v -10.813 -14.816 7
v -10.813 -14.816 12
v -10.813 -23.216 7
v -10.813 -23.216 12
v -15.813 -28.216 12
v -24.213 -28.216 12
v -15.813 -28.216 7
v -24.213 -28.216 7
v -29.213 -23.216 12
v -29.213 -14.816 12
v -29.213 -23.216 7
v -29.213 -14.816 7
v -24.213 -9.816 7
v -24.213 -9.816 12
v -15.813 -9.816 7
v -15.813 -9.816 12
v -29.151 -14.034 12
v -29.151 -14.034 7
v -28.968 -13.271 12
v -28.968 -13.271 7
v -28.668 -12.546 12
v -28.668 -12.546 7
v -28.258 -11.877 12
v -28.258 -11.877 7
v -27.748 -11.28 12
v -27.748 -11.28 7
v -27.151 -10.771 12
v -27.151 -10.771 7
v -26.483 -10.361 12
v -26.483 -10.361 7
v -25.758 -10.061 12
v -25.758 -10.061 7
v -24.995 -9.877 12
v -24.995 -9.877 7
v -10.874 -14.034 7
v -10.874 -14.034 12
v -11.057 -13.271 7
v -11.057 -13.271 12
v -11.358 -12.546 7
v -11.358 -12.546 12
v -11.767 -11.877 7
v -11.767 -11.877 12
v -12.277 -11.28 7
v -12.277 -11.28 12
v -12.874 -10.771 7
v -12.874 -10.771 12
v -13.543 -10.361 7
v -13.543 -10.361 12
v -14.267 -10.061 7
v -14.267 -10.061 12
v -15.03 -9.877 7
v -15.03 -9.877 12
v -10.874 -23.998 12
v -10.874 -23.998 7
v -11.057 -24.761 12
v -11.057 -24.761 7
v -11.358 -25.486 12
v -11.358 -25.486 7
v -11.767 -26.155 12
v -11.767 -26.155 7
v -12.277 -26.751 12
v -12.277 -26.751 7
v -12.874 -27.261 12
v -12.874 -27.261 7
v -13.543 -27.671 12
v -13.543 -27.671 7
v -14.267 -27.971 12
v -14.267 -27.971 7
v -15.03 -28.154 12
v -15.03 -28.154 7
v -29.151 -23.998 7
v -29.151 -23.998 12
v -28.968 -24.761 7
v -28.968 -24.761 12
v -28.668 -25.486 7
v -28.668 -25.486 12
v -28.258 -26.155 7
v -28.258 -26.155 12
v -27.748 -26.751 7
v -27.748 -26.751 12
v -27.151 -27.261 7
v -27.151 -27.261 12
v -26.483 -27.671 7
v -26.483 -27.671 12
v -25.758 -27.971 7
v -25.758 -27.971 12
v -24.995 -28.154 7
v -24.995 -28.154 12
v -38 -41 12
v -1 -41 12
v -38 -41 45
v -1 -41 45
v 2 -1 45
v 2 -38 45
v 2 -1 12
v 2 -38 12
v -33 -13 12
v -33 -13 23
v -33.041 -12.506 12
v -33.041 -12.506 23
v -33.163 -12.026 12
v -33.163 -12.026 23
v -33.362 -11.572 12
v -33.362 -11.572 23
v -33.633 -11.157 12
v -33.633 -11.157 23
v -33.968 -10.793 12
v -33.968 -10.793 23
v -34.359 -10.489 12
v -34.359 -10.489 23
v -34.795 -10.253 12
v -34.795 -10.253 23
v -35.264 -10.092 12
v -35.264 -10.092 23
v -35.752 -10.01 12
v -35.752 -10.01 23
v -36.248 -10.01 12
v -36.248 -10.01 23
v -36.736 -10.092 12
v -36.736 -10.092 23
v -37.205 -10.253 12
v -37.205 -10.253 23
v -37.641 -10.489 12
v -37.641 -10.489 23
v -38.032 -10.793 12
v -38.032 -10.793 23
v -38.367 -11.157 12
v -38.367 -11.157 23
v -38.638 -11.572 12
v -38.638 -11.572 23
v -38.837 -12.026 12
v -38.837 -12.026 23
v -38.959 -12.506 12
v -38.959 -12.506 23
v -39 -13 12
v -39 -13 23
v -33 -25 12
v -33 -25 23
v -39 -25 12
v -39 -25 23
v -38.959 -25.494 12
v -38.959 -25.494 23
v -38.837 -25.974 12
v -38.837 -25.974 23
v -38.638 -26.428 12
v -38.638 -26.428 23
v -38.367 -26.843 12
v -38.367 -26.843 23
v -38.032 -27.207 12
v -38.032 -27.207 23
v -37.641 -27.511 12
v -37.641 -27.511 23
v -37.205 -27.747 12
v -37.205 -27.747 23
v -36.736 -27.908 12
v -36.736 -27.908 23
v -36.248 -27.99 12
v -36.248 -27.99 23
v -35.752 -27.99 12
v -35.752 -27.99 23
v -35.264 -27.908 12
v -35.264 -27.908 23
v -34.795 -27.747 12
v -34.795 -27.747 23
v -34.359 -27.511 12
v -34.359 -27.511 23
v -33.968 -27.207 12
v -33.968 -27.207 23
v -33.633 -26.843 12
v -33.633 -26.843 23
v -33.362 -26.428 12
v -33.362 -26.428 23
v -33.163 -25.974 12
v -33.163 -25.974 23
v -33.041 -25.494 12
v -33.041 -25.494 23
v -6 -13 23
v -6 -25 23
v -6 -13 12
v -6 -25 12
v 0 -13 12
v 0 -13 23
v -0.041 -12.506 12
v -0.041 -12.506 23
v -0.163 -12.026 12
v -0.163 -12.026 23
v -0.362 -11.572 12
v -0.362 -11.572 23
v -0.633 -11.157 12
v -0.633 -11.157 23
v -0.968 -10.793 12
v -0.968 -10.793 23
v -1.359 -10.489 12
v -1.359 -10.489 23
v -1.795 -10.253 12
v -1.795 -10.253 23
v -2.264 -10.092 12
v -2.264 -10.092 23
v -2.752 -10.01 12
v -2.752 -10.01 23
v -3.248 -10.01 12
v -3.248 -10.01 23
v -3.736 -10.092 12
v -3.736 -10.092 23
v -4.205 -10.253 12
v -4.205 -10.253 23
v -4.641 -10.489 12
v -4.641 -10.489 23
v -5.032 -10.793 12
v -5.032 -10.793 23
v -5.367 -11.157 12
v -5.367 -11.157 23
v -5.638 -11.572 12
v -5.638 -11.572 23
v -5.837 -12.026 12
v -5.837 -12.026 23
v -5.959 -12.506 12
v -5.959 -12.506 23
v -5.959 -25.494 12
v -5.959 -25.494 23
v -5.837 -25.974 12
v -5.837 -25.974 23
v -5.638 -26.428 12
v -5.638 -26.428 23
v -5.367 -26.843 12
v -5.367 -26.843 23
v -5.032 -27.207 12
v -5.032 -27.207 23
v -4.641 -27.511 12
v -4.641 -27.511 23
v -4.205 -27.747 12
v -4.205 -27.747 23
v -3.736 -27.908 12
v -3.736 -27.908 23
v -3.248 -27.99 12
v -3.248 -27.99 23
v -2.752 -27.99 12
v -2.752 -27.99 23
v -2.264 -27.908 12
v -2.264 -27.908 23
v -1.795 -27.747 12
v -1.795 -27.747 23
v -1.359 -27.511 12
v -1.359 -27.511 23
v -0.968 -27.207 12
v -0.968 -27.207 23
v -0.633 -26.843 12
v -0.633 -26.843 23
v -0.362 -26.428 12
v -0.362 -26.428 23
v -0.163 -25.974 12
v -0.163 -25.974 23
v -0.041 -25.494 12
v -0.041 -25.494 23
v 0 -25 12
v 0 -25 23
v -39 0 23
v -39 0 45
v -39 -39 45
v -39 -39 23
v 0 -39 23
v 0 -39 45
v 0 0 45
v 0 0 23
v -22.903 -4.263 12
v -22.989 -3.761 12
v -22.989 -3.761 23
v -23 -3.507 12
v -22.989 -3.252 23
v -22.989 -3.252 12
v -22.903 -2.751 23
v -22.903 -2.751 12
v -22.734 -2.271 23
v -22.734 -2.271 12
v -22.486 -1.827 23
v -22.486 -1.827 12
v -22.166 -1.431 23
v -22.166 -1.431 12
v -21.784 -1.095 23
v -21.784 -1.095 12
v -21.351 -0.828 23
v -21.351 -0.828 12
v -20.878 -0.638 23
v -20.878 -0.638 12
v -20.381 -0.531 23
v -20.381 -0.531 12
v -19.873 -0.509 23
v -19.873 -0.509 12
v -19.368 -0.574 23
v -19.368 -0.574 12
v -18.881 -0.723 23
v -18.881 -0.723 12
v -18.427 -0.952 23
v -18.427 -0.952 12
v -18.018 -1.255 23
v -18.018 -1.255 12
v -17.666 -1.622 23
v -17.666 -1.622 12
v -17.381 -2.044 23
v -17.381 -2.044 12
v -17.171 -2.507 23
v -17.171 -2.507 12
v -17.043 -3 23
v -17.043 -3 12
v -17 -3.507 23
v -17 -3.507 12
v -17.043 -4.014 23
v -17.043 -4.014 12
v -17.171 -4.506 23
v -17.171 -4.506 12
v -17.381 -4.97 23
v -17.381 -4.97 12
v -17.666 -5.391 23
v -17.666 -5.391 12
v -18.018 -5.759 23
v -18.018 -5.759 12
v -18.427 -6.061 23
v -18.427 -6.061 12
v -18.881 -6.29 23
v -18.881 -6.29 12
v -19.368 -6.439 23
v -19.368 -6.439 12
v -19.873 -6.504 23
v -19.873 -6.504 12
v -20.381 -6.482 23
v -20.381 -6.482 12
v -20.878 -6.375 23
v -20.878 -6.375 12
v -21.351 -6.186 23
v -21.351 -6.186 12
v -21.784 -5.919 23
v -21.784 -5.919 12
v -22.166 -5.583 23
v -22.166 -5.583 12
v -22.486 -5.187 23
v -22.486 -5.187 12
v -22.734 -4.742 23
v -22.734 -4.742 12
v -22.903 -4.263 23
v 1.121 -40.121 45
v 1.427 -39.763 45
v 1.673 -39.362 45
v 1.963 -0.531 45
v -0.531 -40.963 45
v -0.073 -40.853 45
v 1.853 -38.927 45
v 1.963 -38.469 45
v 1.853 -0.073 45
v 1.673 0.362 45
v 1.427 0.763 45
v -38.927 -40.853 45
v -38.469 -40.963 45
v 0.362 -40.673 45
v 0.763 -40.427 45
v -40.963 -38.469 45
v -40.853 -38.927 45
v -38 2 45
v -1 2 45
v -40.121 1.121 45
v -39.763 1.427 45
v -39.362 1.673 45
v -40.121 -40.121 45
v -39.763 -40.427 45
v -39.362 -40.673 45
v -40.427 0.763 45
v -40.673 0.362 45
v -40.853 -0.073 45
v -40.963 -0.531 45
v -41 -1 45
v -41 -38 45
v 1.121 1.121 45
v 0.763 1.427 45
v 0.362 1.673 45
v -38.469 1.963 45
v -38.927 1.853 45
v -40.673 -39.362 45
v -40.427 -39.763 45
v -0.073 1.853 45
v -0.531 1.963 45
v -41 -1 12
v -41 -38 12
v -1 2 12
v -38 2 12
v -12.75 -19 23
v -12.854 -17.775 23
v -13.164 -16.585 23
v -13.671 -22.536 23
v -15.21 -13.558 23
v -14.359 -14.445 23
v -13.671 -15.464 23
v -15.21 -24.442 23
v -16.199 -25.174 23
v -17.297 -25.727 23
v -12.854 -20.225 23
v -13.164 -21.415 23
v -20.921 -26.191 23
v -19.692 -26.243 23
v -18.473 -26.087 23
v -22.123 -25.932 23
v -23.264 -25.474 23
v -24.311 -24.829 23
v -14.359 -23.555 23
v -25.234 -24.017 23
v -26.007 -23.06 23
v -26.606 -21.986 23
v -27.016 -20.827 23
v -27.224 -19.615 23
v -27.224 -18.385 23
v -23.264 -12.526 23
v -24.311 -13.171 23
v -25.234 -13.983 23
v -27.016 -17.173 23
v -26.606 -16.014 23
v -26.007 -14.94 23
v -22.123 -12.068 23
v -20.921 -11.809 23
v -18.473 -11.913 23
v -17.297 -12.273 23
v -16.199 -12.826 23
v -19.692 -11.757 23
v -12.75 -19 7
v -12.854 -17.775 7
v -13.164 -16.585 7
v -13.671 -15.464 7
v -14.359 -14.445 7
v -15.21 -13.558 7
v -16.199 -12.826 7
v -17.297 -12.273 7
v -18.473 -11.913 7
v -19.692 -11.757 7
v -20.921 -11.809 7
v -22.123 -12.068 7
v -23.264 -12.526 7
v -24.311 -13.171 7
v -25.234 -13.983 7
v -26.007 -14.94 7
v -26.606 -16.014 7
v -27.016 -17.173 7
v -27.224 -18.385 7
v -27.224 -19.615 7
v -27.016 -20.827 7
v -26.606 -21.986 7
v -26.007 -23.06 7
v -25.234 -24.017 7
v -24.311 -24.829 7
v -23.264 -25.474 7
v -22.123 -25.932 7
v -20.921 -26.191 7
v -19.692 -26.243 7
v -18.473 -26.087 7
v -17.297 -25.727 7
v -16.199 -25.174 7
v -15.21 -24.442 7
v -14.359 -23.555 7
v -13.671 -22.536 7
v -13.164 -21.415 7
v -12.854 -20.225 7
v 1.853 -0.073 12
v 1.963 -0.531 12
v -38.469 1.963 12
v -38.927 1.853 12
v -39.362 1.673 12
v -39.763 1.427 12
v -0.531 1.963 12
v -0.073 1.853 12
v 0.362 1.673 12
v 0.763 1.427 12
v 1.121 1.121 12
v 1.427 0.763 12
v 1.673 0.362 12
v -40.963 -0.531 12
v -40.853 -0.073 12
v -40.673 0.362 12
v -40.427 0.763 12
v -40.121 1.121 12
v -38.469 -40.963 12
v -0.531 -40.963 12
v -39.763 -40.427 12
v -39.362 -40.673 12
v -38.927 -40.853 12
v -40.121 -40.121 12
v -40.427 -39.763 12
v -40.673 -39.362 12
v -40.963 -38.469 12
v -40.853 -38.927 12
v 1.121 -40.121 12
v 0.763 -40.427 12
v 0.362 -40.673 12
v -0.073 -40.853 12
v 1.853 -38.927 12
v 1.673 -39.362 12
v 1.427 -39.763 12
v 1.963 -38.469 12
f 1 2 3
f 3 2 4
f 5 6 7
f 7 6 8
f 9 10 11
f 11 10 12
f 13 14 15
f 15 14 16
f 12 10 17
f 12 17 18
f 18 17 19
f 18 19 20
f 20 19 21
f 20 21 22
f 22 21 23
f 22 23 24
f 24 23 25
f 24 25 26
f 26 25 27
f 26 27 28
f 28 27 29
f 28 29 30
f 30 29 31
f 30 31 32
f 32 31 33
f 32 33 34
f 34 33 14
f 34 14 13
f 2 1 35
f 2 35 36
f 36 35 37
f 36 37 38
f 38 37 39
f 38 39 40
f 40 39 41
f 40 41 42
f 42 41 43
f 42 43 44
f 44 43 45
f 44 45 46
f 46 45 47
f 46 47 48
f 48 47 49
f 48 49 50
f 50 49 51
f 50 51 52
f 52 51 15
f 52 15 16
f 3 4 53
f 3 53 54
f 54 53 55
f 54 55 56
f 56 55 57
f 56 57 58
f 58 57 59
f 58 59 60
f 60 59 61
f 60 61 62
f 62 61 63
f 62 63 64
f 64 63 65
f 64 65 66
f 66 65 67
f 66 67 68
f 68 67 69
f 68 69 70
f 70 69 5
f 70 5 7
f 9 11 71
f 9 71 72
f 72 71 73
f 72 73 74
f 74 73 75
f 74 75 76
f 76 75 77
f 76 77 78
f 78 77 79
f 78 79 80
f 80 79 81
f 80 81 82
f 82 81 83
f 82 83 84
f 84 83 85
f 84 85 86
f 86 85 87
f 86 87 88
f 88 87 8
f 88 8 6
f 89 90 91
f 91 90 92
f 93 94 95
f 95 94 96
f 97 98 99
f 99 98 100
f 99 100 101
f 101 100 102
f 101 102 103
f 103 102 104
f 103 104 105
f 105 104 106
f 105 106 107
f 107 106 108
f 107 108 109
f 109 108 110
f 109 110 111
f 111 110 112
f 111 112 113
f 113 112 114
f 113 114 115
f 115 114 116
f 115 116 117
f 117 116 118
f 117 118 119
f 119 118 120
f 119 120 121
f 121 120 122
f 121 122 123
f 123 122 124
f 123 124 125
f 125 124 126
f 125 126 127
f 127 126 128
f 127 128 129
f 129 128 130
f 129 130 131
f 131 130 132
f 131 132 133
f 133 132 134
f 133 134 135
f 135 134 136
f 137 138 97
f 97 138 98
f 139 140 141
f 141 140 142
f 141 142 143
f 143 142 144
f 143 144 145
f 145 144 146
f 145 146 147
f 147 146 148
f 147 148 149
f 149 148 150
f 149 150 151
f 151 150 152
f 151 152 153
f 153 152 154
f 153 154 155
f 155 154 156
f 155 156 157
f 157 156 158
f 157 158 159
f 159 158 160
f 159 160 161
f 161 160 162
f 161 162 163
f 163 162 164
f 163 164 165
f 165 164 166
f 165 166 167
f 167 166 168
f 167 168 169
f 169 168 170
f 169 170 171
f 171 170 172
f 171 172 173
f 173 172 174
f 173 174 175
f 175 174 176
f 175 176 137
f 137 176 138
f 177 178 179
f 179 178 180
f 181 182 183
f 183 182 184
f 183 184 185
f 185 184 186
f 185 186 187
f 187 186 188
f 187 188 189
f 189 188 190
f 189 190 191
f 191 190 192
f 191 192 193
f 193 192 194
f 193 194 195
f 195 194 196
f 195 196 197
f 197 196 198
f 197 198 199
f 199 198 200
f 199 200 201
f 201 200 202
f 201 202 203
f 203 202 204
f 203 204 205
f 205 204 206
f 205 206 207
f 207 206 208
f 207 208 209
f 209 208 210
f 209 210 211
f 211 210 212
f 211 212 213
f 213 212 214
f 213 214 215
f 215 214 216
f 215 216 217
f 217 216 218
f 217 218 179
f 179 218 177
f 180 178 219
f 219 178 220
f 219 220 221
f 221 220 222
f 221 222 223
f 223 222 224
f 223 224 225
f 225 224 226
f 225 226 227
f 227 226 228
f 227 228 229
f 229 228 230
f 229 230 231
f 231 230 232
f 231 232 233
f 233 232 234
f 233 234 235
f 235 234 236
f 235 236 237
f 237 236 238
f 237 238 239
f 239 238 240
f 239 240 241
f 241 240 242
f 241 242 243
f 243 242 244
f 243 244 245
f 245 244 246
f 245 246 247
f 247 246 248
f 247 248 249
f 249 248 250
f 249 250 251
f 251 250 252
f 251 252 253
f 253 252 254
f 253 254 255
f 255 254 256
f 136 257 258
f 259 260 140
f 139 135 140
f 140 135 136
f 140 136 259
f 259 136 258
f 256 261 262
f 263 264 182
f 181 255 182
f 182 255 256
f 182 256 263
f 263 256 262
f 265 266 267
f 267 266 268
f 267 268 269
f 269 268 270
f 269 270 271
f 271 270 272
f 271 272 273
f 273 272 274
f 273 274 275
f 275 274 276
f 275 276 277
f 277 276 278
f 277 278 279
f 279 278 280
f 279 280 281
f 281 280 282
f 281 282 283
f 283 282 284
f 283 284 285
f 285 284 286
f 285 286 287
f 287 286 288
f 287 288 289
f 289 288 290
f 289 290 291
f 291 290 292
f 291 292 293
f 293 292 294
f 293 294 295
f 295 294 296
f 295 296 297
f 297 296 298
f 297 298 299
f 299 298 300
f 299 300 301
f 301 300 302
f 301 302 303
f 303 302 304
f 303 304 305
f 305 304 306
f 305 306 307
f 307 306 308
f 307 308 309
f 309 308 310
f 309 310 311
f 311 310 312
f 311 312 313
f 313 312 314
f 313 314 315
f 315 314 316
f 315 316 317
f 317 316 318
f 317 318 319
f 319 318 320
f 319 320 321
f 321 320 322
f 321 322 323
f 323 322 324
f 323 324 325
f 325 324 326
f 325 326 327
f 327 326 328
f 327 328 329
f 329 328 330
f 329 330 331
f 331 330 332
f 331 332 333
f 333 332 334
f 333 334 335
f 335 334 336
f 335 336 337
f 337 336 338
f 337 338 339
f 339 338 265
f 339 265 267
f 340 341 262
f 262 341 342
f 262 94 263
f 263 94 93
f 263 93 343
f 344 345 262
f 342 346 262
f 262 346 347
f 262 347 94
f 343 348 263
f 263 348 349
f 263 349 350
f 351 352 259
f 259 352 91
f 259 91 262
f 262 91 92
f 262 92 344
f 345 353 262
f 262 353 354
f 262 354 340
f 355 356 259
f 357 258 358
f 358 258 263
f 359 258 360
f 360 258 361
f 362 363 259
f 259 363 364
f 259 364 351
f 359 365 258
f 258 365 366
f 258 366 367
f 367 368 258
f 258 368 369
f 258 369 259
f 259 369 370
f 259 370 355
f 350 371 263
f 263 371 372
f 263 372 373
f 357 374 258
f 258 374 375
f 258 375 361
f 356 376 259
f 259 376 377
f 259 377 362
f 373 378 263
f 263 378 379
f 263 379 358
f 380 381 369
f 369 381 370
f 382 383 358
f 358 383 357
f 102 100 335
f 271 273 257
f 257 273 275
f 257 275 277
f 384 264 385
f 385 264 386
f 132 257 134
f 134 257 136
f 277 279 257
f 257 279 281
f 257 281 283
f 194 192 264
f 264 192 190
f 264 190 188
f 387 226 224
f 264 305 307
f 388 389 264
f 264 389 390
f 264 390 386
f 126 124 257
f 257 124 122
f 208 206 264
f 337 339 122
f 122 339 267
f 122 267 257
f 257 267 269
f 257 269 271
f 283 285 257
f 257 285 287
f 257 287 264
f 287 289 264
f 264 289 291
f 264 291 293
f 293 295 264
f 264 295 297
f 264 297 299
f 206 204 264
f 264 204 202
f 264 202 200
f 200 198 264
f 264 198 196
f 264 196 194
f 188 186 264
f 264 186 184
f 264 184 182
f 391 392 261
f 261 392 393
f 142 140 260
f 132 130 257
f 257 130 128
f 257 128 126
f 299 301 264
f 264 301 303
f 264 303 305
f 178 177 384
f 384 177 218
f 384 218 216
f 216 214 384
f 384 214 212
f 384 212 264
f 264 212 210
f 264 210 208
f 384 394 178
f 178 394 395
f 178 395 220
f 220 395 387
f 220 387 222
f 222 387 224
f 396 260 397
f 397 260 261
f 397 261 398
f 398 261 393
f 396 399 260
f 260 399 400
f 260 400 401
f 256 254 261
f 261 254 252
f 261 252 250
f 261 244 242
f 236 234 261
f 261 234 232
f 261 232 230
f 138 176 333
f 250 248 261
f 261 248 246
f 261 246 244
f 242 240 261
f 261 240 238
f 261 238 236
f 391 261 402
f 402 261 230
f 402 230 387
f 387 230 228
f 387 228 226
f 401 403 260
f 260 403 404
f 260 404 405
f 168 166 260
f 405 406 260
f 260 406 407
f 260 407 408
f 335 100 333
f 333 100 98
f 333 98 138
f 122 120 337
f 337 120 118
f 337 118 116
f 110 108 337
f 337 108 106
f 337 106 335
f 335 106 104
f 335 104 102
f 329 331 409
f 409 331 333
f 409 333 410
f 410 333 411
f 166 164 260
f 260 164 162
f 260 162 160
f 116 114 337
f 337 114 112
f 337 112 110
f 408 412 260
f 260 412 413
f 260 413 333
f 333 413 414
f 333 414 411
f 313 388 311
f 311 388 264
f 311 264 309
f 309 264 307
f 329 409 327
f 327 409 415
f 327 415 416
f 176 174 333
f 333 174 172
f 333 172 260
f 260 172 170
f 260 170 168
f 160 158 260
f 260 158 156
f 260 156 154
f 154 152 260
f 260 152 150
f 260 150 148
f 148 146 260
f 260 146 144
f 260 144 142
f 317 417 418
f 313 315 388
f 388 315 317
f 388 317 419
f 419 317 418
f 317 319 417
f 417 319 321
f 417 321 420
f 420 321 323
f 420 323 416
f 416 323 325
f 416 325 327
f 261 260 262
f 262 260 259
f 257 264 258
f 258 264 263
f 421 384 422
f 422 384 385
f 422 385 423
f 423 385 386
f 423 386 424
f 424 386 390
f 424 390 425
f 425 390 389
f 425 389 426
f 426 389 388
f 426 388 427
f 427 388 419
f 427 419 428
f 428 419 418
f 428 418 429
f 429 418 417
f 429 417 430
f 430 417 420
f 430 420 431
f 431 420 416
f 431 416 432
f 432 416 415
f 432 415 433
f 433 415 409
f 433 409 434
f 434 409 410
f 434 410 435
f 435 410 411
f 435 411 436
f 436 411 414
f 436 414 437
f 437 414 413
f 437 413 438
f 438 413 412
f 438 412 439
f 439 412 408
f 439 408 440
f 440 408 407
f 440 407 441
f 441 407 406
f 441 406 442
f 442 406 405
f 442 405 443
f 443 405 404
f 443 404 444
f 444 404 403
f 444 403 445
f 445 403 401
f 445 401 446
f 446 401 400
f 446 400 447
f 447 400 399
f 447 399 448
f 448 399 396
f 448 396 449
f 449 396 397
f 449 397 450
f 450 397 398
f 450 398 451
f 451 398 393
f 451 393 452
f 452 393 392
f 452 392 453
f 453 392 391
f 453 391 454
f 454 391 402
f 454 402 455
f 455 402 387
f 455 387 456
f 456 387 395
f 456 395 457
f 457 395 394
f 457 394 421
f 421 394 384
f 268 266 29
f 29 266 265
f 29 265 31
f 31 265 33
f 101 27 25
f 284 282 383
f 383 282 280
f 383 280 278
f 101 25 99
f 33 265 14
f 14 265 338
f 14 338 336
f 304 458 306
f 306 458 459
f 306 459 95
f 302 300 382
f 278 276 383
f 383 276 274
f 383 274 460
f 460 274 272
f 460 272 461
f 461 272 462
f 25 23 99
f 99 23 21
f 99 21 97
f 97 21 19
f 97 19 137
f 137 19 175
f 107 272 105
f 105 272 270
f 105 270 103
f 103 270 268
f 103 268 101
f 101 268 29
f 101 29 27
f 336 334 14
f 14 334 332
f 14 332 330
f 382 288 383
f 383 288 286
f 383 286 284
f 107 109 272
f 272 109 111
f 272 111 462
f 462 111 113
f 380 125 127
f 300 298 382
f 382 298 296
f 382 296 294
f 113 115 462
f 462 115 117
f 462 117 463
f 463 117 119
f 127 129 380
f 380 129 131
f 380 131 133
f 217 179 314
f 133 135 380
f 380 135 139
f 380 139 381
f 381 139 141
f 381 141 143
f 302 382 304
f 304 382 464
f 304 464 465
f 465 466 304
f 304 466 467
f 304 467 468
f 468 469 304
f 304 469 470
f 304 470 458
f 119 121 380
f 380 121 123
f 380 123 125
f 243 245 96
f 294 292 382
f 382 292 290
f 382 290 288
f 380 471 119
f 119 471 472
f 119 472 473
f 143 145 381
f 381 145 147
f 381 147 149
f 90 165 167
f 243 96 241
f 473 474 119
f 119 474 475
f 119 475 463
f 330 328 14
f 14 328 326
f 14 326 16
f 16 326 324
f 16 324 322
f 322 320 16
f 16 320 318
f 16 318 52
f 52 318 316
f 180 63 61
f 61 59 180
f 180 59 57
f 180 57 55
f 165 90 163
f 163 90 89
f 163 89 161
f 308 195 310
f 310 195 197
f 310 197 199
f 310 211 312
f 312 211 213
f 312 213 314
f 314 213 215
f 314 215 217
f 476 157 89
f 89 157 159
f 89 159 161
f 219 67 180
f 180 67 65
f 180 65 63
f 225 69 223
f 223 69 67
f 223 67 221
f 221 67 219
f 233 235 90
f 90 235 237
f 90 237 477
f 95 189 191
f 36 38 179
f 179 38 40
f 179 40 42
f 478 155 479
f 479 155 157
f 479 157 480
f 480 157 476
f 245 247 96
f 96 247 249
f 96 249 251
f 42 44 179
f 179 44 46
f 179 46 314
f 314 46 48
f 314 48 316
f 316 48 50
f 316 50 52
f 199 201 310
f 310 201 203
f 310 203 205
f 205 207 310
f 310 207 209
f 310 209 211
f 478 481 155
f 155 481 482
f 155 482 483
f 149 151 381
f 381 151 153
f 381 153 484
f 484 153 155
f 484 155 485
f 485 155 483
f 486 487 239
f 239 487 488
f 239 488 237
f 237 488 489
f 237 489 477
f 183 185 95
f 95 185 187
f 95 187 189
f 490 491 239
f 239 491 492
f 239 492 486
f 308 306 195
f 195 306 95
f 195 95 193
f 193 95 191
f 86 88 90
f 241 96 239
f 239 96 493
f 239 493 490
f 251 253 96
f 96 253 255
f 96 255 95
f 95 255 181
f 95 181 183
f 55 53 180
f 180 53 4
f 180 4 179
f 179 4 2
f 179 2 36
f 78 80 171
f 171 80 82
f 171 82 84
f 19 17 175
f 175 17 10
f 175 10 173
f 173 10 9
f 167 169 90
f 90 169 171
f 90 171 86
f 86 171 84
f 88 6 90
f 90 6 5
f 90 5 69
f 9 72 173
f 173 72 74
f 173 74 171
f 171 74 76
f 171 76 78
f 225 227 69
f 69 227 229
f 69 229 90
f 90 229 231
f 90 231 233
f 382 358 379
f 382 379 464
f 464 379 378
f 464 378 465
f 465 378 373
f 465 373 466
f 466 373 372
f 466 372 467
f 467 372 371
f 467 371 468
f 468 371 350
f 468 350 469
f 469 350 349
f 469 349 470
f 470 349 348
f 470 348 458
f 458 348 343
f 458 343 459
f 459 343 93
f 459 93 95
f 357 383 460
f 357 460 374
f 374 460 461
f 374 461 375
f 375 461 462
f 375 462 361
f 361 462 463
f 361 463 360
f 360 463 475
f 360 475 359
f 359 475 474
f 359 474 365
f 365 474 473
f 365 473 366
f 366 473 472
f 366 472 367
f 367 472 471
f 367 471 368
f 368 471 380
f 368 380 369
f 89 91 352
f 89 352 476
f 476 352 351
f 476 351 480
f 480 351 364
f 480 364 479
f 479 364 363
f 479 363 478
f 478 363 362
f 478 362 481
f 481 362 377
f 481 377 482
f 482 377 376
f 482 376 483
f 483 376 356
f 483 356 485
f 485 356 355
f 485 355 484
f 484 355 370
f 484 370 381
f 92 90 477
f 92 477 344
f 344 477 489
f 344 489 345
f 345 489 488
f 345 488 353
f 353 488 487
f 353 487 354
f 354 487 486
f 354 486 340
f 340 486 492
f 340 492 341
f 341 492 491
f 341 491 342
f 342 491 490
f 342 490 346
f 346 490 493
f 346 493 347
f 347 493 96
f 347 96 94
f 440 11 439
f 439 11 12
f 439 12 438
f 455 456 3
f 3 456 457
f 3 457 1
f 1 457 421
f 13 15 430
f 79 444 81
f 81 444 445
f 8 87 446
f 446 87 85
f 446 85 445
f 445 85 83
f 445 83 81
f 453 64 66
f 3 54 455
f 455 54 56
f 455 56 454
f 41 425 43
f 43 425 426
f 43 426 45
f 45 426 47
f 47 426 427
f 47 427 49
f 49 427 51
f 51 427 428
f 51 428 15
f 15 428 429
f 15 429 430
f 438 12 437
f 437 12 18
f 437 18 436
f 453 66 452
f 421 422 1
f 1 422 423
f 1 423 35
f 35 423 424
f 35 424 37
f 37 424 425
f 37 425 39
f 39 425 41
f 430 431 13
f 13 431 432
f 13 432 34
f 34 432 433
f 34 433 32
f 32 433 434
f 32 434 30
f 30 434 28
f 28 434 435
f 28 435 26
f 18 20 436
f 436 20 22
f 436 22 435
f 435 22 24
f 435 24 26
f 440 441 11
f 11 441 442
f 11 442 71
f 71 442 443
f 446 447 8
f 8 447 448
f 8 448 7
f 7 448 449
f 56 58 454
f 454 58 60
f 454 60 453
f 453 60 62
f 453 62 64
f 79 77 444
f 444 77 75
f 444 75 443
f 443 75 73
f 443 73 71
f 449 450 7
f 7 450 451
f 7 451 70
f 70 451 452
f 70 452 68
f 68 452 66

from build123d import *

# Parameters (mm, degrees)
SKETCH1_W           = 43
SKETCH1_H           = 43
BOSS_EXTRUDE1_DEPTH = 45
SKETCH3_R           = 3
SKETCH3_R_2         = 7.25
CUT_EXTRUDE4_DEPTH  = 38
SKETCH6_W           = 39
SKETCH6_H           = 39
CUT_EXTRUDE5_DEPTH  = 22
SKETCH7_W           = 43
SKETCH7_H           = 43
SKETCH7_W_2         = 18.4
SKETCH7_H_2         = 18.4
CUT_EXTRUDE8_DEPTH  = 12
FILLET2_R           = 5
FILLET3_R           = 3
SKETCH10_W          = 20.235048465
SKETCH10_H          = 19.323901817
CUT_EXTRUDE9_DEPTH  = 7


with BuildPart() as part:
    # Sketch1 → Boss-Extrude1 (new body)
    with BuildSketch(Plane(origin=(0, 0, 0), x_dir=(0, 1, 0), z_dir=(0, 0, 1))):
        with Locations((-19.5, 19.5)):
            Rectangle(SKETCH1_W, SKETCH1_H)
    extrude(amount=BOSS_EXTRUDE1_DEPTH)

    # Sketch3 → Cut-Extrude4 (cut)
    with BuildSketch(Plane.XY.offset(45)):
        with Locations((-20, -3.506761261)):
            Circle(SKETCH3_R)
        with Locations((-20, -19)):
            Circle(SKETCH3_R_2)
        with BuildLine():
            Line((-6, -13), (-6, -25))
            ThreePointArc((-6, -25), (-3, -28), (0, -25))
            Line((0, -25), (0, -13))
            ThreePointArc((0, -13), (-3, -10), (-6, -13))
        make_face()
        with BuildLine():
            Line((-33, -13), (-33, -25))
            ThreePointArc((-33, -25), (-36, -28), (-39, -25))
            Line((-39, -25), (-39, -13))
            ThreePointArc((-39, -13), (-36, -10), (-33, -13))
        make_face()
    extrude(amount=-CUT_EXTRUDE4_DEPTH, mode=Mode.SUBTRACT)

    # Sketch6 → Cut-Extrude5 (cut)
    with BuildSketch(Plane.XY.offset(45)):
        with Locations((-19.5, -19.5)):
            Rectangle(SKETCH6_W, SKETCH6_H)
    extrude(amount=-CUT_EXTRUDE5_DEPTH, mode=Mode.SUBTRACT)

    # Sketch7 → Cut-Extrude8 (cut)
    with BuildSketch(Plane(origin=(0, 0, 0), x_dir=(1, 0, 0), z_dir=(0, 0, -1))):
        with Locations((-19.5, 19.5)):
            Rectangle(SKETCH7_W, SKETCH7_H)
        with Locations((-20.012556467, 19.015852406)):
            Rectangle(SKETCH7_W_2, SKETCH7_H_2, mode=Mode.SUBTRACT)
    extrude(amount=-CUT_EXTRUDE8_DEPTH, mode=Mode.SUBTRACT)

    # Fillet2
    fillet2_edges = [part.edges().sort_by_distance(p)[0] for p in [
        (-10.812556467, -9.815852406, 6),
        (-10.812556467, -28.215852406, 6),
        (-29.212556467, -28.215852406, 6),
        (-29.212556467, -9.815852406, 6),
    ]]
    fillet(fillet2_edges, radius=FILLET2_R)

    # Fillet3
    fillet3_edges = [part.edges().sort_by_distance(p)[0] for p in [
        (-41, -41, 28.5),
        (2, -41, 28.5),
        (2, 2, 28.5),
        (-41, 2, 28.5),
    ]]
    fillet(fillet3_edges, radius=FILLET3_R)

    # Sketch10 → Cut-Extrude9 (cut)
    with BuildSketch(Plane(origin=(0, 0, 0), x_dir=(1, 0, 0), z_dir=(0, 0, -1))):
        with Locations((-19.898626658, 18.797657793)):
            Rectangle(SKETCH10_W, SKETCH10_H)
    extrude(amount=-CUT_EXTRUDE9_DEPTH, mode=Mode.SUBTRACT)


solid = part.part
